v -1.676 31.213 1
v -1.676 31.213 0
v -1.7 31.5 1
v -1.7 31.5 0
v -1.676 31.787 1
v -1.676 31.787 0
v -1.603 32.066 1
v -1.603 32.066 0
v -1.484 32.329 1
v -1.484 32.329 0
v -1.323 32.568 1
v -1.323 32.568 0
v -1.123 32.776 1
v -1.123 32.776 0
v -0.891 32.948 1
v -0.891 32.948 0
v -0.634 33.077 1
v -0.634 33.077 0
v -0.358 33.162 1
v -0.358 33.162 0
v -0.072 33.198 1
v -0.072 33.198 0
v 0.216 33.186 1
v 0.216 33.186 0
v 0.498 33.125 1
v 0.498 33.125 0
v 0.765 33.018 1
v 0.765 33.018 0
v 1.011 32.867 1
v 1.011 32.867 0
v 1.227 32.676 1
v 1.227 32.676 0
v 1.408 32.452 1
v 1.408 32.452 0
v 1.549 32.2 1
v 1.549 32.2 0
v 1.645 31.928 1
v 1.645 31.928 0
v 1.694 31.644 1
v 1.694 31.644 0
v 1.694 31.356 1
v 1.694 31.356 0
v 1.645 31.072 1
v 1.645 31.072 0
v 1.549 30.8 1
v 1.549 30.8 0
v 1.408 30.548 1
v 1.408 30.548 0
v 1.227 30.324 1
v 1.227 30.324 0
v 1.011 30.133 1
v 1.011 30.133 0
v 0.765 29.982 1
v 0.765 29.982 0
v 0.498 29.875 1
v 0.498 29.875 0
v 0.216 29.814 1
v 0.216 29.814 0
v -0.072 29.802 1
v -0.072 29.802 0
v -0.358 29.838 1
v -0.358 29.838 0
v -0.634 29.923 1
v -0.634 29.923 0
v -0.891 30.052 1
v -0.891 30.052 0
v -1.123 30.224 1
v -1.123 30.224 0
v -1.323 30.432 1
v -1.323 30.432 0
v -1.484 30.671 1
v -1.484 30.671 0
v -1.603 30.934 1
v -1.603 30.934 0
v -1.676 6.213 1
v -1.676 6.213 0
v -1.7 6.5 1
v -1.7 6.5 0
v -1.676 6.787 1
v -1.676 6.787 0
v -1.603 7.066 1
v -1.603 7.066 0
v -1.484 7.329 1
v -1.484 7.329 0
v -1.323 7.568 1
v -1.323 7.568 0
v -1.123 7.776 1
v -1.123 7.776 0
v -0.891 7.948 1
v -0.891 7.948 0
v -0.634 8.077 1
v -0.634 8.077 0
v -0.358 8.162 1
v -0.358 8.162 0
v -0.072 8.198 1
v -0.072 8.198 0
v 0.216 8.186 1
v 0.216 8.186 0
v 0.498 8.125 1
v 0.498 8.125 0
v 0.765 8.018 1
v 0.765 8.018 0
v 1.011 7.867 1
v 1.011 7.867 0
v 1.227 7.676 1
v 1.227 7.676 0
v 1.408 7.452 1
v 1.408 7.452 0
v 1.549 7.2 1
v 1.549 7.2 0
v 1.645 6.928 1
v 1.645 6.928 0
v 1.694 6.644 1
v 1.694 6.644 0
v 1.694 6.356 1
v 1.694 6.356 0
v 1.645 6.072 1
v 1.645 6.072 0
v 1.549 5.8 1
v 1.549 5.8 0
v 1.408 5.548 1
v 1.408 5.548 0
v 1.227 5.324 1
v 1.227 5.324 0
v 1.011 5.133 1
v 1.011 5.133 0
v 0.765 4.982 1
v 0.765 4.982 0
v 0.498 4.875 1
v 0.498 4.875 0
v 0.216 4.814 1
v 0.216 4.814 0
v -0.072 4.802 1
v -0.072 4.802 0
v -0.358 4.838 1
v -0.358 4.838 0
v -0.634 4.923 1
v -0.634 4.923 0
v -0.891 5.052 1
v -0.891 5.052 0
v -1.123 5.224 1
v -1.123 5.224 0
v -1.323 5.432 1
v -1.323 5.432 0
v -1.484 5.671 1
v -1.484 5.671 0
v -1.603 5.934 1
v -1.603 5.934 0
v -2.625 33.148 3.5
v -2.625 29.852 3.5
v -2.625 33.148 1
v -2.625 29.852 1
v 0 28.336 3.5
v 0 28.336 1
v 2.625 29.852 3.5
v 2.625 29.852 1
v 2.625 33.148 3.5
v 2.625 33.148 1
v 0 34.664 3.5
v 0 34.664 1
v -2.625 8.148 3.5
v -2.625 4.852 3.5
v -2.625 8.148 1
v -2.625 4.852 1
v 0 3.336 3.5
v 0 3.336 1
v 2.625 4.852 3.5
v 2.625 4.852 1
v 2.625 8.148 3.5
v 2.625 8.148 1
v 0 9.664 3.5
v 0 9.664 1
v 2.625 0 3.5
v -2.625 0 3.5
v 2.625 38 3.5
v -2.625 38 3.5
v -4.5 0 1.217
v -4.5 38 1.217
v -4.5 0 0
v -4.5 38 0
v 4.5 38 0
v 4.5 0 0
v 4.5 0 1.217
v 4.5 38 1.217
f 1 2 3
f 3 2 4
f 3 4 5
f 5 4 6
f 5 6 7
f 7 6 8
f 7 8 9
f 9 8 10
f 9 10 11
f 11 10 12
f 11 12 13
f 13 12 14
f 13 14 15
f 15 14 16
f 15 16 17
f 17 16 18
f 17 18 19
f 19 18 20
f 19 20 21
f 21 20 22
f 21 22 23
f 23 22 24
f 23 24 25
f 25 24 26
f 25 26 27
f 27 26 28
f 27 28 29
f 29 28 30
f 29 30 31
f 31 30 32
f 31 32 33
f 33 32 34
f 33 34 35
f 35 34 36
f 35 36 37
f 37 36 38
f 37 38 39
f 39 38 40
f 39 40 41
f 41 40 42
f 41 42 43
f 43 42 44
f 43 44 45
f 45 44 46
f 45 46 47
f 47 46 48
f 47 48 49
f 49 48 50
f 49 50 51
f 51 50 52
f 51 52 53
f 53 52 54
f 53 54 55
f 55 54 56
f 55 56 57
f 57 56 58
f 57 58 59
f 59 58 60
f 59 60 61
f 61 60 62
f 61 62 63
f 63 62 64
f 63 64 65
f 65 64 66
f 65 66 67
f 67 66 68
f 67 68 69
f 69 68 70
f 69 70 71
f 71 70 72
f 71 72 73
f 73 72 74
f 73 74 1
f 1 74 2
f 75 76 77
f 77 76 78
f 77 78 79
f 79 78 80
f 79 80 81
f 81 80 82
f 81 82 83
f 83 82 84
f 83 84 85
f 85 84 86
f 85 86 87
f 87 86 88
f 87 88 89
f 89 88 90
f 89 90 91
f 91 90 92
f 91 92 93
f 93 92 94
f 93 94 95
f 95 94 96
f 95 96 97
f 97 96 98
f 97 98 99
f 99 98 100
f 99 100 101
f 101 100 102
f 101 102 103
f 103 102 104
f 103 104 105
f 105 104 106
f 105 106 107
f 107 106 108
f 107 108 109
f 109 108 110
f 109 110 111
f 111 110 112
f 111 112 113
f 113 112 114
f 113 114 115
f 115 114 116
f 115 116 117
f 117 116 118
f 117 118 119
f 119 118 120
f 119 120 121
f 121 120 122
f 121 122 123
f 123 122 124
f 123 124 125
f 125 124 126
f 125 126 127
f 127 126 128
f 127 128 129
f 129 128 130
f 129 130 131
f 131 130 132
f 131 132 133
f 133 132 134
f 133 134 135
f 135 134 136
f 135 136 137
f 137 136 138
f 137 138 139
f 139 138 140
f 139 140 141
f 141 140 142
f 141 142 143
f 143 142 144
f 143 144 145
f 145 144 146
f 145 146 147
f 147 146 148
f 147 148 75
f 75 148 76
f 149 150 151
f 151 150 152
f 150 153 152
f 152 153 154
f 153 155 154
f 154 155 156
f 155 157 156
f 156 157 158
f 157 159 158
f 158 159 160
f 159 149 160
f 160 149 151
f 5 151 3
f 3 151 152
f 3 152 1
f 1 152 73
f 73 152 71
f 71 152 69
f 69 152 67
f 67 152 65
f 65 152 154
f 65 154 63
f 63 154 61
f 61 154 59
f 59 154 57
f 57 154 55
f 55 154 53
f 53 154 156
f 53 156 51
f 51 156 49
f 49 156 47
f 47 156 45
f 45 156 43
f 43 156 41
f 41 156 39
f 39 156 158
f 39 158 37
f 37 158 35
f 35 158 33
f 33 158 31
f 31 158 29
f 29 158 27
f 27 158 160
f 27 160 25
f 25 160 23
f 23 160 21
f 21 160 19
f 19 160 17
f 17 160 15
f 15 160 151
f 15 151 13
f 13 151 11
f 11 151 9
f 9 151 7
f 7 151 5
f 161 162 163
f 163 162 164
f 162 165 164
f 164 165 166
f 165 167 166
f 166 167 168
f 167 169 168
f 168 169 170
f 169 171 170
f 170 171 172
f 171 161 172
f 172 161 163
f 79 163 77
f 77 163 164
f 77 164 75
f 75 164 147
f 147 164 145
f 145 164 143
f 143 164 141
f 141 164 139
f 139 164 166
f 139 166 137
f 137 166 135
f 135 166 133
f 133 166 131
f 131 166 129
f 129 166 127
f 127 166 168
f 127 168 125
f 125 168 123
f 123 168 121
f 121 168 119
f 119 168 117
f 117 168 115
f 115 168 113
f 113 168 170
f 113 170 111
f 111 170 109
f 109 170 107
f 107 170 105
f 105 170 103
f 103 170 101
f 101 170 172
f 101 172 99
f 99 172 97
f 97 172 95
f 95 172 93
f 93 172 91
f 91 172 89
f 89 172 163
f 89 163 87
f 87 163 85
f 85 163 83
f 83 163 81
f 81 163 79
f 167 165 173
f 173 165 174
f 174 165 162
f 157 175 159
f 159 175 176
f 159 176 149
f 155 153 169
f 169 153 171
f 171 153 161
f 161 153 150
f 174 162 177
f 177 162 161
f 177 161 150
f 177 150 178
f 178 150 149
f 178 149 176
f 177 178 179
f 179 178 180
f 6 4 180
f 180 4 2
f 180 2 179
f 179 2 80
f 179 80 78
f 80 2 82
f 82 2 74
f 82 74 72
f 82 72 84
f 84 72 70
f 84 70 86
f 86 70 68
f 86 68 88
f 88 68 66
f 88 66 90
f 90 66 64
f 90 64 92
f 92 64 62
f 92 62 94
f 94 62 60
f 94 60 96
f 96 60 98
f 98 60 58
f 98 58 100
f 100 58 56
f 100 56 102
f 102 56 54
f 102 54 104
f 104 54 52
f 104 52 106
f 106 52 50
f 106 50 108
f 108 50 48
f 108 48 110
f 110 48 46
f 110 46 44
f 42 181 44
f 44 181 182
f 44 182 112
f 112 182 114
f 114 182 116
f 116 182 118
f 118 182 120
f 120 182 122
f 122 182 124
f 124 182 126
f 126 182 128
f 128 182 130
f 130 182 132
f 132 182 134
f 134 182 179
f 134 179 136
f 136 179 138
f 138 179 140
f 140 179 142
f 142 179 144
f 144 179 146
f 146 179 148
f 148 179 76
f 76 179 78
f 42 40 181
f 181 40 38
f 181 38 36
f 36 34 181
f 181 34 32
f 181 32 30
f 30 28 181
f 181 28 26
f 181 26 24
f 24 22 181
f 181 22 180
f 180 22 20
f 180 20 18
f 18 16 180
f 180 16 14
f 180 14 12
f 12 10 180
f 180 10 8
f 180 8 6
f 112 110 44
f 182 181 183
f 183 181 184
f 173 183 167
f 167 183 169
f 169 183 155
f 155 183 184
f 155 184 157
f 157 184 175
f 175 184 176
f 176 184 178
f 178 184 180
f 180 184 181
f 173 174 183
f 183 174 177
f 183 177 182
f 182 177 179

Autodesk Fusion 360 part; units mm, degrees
sketch "Sketch1" plane through (0, 0, 0) normal (0, 1, 0) x (1, 0, 0)
  line L0 (0, 0) -> (5.5, 0)
  line L1 (0, -3.5) -> (2.625, -3.5)
  line L2 (2.625, -3.5) -> (5.5, 0)
  line L3 (0, -1.75) -> (0, -22.5)
  line L4 (0, -3.5) -> (-2.625, -3.5)
  line L5 (-2.625, -3.5) -> (-5.5, 0)
  line L6 (0, 0) -> (-5.5, 0)
  line L7 (-4.5, -1.2174) -> (-4.5, 0)
  line L8 (4.5, -1.2174) -> (4.5, 0)
  dimension "d1" = 5.5
  dimension "d2" = 2.625
  dimension "d3" = 3.5
  dimension "d16" = 4.5
extrude "Extrude1" add sketch "Sketch1" along normal blind 38 contours L0 L1 L2 L4 L5 L6 L7 L8
sketch "Sketch2" plane through (0, 0, 3.5) normal (0, 0, 1) x (-1, 0, 0)
  line L0 (2.625, 0) -> (-2.625, 0)
  line L1 (-2.625, 0) -> (-2.625, -38)
  line L2 (-2.625, -38) -> (2.625, -38)
  line L3 (2.625, -38) -> (2.625, 0)
  line L4 (0, -38) -> (0, 0) construction
  line L5 (2.74, -29.9181) -> (0, -28.3361)
  line L6 (0, -28.3361) -> (-2.74, -29.9181)
  line L7 (-2.74, -29.9181) -> (-2.74, -33.0819)
  line L8 (-2.74, -33.0819) -> (0, -34.6639)
  line L9 (0, -34.6639) -> (2.74, -33.0819)
  line L10 (2.74, -33.0819) -> (2.74, -29.9181)
  line L11 (2.74, -4.9181) -> (0, -3.3361)
  line L12 (0, -3.3361) -> (-2.74, -4.9181)
  line L13 (-2.74, -4.9181) -> (-2.74, -8.0819)
  line L14 (-2.74, -8.0819) -> (0, -9.6639)
  line L15 (0, -9.6639) -> (2.74, -8.0819)
  line L16 (2.74, -8.0819) -> (2.74, -4.9181)
  point P0 (0, -31.5)
  point P1 (0, -6.5)
  dimension "d6" = 2.74
  dimension "d7" = 2.74
  dimension "d8" = 25
  dimension "d9" = 6.5
extrude "Extrude2" cut sketch "Sketch2" against normal blind 2.5 contours L1 L3 L11 L12 L14 L15 | L1 L3 L5 L6 L8 L9
hole "Hole1" at (0, 31.5, 3.5) at (0, 6.5, 3.5) direction (0, 0, -1) diameter 3.4 depth 16 tip angle 118
equation "d2 = ( 5.25 / 2 ) * 1 mm"
equation "d6 = ( 5.48 / 2 ) * 1 mm"
equation "d7 = ( 5.48 / 2 ) * 1 mm"
